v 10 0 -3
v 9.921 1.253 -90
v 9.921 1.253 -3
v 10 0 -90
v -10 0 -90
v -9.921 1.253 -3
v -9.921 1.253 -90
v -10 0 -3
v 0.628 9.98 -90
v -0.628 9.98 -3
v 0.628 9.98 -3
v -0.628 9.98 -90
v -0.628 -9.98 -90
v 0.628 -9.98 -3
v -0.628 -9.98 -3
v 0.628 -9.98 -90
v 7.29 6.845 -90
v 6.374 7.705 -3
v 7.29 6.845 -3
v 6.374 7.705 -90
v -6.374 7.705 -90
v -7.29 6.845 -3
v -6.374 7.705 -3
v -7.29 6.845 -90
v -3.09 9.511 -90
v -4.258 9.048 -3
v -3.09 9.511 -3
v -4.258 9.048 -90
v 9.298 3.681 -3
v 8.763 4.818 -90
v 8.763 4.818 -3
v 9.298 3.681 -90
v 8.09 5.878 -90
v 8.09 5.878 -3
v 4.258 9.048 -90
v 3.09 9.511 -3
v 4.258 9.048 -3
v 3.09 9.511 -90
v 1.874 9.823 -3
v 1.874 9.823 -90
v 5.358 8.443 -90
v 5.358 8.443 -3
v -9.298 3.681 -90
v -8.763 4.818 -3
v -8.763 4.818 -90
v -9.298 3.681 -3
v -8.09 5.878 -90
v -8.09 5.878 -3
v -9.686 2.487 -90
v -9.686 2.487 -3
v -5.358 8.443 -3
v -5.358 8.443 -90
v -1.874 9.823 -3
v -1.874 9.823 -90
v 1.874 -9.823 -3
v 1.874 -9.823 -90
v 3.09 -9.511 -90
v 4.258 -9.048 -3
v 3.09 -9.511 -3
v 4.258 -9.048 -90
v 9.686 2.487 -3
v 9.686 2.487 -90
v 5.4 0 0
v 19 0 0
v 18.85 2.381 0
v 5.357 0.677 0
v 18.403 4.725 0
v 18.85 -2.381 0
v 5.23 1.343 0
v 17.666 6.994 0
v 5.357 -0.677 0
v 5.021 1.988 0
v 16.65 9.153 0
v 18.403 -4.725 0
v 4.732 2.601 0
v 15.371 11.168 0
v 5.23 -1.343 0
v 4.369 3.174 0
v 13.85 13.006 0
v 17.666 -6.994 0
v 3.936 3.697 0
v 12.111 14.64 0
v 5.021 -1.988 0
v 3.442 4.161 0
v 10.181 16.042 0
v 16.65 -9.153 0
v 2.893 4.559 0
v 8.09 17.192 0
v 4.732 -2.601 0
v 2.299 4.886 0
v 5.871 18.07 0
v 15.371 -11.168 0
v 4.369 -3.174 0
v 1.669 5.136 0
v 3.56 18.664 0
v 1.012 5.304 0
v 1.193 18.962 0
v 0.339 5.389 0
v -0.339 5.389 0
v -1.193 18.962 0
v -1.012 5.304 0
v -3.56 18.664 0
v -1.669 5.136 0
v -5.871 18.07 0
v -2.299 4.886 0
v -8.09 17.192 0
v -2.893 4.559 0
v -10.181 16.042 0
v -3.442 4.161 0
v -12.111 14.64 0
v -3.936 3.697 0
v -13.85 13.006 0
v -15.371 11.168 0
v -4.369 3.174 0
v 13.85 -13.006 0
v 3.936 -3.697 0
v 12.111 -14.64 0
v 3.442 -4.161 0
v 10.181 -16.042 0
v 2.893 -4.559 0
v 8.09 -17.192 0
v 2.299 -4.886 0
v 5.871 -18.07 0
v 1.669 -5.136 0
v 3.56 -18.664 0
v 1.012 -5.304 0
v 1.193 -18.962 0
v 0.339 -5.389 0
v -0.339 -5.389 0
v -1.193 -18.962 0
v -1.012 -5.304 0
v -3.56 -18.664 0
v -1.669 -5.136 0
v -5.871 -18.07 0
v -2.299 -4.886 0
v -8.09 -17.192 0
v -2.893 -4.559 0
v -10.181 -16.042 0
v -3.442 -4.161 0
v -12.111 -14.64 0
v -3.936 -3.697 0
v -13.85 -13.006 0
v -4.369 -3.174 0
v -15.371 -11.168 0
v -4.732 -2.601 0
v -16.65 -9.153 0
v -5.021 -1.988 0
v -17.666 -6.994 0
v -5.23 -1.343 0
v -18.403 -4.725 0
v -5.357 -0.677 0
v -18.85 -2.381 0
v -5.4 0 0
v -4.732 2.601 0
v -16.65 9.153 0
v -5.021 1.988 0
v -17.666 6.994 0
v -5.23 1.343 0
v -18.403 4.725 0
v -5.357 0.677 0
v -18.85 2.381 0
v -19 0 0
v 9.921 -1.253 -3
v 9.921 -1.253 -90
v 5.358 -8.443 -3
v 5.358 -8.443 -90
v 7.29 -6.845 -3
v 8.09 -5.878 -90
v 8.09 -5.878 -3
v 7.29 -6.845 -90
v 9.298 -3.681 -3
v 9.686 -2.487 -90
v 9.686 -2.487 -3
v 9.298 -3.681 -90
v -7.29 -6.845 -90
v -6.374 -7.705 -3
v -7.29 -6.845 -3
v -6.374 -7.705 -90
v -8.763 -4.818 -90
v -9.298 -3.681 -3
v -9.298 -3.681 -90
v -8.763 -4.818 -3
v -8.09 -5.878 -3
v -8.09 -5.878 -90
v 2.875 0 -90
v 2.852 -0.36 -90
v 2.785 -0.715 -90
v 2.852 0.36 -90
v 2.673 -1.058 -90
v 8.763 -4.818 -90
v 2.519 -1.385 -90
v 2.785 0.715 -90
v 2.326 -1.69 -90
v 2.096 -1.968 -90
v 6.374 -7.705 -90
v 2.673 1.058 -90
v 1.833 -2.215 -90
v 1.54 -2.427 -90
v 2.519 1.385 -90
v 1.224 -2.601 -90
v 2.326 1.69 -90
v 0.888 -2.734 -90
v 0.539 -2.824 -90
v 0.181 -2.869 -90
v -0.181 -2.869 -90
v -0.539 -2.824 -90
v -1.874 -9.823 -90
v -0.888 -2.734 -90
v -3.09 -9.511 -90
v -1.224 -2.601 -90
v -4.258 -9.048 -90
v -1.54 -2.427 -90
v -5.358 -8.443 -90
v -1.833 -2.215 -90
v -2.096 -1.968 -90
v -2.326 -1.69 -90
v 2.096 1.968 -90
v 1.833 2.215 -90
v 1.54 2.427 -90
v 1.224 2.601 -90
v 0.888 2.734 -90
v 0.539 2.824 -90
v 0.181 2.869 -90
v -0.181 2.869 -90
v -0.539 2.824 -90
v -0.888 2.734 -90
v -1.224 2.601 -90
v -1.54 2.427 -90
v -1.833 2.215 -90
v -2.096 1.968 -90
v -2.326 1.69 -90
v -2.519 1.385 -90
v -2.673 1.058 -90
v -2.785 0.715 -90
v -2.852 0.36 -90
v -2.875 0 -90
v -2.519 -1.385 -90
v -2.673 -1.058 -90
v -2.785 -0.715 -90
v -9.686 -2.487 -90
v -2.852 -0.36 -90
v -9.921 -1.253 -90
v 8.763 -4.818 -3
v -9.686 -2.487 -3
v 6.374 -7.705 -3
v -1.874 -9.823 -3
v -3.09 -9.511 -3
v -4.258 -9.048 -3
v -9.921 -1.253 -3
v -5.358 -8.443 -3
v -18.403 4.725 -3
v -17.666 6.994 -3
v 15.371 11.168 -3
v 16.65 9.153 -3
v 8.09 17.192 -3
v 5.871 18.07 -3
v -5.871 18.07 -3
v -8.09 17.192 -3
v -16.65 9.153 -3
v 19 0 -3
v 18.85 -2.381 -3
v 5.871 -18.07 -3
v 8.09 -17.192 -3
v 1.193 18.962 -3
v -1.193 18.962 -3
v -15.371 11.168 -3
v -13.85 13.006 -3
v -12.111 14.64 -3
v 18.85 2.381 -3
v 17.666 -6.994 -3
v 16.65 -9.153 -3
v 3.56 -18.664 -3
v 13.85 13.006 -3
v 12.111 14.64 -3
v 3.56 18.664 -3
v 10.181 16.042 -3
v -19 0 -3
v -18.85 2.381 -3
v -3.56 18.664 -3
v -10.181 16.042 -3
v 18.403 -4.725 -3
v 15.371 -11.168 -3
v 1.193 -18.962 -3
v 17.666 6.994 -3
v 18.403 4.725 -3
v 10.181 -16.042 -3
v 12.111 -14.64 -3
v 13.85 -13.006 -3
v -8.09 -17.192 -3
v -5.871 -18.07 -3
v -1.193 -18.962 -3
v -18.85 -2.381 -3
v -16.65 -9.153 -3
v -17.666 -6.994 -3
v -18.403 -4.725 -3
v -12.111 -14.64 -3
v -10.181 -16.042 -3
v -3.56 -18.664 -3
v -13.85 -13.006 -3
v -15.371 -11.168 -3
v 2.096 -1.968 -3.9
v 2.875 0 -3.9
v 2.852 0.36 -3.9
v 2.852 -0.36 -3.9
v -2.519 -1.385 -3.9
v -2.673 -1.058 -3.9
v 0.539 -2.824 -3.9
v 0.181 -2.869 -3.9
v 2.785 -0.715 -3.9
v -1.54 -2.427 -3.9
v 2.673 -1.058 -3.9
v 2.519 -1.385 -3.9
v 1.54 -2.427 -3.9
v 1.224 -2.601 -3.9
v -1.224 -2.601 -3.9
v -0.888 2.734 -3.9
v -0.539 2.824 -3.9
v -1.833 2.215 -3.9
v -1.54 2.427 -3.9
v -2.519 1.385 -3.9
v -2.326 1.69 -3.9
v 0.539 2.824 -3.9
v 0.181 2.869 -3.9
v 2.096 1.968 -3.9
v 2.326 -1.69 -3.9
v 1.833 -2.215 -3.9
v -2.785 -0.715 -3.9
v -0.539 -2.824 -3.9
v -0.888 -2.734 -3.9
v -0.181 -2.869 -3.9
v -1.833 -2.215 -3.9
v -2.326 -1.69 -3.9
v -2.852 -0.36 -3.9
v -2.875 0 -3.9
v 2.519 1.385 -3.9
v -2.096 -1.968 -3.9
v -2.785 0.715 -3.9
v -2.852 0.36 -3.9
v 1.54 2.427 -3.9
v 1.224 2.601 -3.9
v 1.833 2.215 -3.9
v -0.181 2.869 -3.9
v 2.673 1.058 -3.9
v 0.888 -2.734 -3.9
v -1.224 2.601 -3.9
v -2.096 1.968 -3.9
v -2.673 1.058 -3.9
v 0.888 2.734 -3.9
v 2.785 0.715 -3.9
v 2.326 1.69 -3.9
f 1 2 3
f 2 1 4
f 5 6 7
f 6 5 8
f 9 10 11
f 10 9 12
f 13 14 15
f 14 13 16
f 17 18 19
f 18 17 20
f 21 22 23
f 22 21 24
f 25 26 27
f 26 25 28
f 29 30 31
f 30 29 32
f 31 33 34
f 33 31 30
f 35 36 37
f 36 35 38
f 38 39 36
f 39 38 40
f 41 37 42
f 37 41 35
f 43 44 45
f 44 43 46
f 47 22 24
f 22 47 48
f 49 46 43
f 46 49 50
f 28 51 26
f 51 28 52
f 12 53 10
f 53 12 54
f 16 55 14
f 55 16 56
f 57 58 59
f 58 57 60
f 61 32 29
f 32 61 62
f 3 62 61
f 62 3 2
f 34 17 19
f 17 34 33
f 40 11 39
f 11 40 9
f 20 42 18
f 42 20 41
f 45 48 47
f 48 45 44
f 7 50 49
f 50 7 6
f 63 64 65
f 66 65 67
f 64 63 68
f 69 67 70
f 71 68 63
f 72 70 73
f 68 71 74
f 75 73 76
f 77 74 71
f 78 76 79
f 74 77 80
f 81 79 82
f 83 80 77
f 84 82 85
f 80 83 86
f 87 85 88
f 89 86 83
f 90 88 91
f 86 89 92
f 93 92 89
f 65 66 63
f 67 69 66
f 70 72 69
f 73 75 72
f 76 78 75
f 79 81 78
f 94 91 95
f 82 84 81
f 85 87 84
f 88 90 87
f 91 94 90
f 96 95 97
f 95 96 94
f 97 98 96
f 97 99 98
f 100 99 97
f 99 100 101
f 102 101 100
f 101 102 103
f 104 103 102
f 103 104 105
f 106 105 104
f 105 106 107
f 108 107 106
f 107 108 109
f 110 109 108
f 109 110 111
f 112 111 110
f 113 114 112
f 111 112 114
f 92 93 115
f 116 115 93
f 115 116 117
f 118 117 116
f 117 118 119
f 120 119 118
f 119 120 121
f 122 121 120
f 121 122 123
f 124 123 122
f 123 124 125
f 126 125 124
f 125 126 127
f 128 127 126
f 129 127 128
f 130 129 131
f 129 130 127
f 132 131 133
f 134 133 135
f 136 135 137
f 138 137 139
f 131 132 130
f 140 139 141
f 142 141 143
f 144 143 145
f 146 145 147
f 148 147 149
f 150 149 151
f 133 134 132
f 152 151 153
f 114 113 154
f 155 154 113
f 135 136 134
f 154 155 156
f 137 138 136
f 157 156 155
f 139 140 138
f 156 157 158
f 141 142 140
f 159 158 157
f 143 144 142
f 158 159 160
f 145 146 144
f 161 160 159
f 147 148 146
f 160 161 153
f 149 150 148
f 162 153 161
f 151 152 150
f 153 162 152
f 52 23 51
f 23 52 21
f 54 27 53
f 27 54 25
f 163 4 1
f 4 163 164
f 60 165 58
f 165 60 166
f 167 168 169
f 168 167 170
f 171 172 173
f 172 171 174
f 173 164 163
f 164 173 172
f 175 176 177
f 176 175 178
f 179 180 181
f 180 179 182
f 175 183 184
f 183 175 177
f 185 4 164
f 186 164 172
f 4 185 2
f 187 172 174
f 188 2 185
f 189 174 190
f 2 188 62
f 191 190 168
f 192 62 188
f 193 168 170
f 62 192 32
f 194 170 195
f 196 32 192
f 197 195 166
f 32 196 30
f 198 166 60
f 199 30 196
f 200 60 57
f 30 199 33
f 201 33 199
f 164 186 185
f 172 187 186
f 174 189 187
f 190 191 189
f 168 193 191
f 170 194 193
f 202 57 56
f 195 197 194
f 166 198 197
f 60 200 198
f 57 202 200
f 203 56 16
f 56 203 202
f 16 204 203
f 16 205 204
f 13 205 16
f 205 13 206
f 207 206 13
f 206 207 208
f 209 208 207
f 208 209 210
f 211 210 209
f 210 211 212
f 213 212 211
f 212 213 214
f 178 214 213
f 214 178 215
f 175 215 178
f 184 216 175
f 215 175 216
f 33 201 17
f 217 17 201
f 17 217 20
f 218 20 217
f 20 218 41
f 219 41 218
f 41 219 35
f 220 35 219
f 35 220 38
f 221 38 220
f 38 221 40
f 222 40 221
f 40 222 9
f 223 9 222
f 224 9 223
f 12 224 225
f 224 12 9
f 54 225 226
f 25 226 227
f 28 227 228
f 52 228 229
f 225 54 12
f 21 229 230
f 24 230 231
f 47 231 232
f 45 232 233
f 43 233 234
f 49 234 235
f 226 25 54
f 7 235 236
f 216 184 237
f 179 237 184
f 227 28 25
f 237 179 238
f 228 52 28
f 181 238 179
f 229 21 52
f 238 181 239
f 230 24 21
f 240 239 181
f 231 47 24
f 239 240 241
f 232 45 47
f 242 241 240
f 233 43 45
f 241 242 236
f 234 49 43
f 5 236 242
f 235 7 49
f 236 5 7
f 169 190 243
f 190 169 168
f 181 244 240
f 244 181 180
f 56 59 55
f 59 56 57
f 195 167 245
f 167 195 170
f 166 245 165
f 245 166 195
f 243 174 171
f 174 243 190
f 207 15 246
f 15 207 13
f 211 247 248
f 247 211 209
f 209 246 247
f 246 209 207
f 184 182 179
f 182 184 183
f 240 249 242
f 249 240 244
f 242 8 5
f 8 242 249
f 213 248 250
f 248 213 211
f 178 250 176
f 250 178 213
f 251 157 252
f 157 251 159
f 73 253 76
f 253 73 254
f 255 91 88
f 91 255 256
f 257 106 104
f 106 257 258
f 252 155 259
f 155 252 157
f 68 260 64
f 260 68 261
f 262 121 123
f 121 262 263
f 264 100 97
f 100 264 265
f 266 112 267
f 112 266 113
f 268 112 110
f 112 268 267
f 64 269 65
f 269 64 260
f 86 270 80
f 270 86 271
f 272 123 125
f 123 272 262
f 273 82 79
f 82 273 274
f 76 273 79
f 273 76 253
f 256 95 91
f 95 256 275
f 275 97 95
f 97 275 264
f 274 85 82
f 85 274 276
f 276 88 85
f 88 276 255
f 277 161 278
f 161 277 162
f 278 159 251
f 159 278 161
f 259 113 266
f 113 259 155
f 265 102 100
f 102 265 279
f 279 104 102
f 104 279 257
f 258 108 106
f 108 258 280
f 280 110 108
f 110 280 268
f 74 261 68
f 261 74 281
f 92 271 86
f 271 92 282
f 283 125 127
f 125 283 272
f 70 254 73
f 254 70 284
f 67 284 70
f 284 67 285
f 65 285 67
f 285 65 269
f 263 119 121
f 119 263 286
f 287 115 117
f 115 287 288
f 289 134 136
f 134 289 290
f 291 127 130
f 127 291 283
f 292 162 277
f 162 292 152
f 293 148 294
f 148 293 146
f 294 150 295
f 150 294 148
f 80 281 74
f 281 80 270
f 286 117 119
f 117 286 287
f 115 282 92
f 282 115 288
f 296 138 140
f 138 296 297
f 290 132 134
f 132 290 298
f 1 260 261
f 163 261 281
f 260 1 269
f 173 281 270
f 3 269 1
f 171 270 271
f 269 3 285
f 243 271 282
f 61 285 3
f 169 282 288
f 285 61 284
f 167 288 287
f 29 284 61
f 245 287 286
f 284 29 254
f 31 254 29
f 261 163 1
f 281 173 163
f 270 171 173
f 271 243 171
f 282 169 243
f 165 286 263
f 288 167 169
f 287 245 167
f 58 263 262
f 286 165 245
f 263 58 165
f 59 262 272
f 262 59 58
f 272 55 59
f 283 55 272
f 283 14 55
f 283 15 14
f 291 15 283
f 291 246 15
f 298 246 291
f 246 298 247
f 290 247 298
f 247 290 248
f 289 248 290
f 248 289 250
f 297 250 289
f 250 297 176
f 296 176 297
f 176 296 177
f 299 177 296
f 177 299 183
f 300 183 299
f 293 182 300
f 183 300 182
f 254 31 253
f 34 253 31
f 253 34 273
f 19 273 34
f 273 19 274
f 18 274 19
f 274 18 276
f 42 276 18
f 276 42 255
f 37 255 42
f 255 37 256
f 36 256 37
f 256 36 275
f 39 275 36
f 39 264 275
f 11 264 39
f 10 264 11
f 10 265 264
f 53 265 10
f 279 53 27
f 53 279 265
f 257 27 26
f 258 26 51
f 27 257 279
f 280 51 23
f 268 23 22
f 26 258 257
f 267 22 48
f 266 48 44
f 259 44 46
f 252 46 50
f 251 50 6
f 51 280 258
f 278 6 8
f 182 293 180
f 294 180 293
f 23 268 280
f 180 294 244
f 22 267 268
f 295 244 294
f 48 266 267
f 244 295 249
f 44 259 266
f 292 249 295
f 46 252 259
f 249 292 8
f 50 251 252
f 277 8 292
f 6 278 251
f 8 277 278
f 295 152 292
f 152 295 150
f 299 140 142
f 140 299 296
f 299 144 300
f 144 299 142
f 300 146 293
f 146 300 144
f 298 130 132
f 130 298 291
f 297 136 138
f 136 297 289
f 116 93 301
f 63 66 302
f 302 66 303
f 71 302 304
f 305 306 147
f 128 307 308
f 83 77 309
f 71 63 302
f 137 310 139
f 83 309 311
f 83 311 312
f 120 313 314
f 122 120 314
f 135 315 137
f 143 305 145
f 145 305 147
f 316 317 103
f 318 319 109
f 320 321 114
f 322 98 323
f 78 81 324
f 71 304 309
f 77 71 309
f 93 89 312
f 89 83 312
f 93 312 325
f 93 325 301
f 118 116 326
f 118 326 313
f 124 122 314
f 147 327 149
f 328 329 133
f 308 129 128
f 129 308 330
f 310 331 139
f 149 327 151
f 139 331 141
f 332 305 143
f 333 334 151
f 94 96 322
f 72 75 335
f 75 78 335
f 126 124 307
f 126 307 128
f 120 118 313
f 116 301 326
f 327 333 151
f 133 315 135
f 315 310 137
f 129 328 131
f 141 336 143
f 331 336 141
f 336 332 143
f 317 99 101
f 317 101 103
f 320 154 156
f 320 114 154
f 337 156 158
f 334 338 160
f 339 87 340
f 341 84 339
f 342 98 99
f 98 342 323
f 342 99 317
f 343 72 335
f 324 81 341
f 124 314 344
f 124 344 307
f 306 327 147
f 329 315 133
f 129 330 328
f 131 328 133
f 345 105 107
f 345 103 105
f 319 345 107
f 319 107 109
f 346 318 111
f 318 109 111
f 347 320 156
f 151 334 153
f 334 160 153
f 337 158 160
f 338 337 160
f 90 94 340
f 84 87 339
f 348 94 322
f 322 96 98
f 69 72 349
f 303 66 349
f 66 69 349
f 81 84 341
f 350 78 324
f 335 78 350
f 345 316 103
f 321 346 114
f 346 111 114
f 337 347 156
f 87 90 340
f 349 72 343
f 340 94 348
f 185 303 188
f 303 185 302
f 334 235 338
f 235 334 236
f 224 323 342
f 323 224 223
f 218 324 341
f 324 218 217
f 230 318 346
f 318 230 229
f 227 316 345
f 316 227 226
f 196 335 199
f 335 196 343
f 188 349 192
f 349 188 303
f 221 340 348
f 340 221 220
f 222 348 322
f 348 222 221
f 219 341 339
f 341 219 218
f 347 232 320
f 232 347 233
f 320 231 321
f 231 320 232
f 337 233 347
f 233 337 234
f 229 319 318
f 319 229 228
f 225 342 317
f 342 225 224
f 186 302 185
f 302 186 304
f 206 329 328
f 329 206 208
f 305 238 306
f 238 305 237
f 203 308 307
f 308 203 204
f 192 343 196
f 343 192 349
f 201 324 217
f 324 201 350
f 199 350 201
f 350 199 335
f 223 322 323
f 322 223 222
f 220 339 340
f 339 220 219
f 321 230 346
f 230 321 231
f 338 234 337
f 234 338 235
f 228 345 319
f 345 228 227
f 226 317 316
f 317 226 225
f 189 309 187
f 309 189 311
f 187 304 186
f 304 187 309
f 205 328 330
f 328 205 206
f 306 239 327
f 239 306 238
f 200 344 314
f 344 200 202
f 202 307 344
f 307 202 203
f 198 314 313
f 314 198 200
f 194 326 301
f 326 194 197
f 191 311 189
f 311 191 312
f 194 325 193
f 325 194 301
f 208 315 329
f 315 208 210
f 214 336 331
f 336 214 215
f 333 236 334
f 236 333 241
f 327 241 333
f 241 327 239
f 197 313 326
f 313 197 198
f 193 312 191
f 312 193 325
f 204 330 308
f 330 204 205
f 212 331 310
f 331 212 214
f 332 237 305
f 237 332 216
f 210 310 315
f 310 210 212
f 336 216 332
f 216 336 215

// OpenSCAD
$fn = 50;


difference() {
	union() {
		translate(v = [0, 0, -90.0000000000]) {
			cylinder(h = 90, r = 10.0000000000);
		}
		translate(v = [0, 0, -3.0000000000]) {
			cylinder(h = 3, r = 19.0000000000);
		}
	}
	union() {
		translate(v = [0, 0, 0]) {
			rotate(a = [0, 0, 0]) {
				difference() {
					union() {
						#translate(v = [0, 0, -90.0000000000]) {
							cylinder(h = 90, r = 2.6000000000);
						}
						#translate(v = [0, 0, -3.9000000000]) {
							cylinder(h = 3.9000000000, r1 = 2.8750000000, r2 = 5.4000000000);
						}
						#translate(v = [0, 0, -90.0000000000]) {
							cylinder(h = 90, r = 2.8750000000);
						}
						#translate(v = [0, 0, -90.0000000000]) {
							cylinder(h = 90, r = 2.6000000000);
						}
					}
					union();
				}
			}
		}
	}
}
